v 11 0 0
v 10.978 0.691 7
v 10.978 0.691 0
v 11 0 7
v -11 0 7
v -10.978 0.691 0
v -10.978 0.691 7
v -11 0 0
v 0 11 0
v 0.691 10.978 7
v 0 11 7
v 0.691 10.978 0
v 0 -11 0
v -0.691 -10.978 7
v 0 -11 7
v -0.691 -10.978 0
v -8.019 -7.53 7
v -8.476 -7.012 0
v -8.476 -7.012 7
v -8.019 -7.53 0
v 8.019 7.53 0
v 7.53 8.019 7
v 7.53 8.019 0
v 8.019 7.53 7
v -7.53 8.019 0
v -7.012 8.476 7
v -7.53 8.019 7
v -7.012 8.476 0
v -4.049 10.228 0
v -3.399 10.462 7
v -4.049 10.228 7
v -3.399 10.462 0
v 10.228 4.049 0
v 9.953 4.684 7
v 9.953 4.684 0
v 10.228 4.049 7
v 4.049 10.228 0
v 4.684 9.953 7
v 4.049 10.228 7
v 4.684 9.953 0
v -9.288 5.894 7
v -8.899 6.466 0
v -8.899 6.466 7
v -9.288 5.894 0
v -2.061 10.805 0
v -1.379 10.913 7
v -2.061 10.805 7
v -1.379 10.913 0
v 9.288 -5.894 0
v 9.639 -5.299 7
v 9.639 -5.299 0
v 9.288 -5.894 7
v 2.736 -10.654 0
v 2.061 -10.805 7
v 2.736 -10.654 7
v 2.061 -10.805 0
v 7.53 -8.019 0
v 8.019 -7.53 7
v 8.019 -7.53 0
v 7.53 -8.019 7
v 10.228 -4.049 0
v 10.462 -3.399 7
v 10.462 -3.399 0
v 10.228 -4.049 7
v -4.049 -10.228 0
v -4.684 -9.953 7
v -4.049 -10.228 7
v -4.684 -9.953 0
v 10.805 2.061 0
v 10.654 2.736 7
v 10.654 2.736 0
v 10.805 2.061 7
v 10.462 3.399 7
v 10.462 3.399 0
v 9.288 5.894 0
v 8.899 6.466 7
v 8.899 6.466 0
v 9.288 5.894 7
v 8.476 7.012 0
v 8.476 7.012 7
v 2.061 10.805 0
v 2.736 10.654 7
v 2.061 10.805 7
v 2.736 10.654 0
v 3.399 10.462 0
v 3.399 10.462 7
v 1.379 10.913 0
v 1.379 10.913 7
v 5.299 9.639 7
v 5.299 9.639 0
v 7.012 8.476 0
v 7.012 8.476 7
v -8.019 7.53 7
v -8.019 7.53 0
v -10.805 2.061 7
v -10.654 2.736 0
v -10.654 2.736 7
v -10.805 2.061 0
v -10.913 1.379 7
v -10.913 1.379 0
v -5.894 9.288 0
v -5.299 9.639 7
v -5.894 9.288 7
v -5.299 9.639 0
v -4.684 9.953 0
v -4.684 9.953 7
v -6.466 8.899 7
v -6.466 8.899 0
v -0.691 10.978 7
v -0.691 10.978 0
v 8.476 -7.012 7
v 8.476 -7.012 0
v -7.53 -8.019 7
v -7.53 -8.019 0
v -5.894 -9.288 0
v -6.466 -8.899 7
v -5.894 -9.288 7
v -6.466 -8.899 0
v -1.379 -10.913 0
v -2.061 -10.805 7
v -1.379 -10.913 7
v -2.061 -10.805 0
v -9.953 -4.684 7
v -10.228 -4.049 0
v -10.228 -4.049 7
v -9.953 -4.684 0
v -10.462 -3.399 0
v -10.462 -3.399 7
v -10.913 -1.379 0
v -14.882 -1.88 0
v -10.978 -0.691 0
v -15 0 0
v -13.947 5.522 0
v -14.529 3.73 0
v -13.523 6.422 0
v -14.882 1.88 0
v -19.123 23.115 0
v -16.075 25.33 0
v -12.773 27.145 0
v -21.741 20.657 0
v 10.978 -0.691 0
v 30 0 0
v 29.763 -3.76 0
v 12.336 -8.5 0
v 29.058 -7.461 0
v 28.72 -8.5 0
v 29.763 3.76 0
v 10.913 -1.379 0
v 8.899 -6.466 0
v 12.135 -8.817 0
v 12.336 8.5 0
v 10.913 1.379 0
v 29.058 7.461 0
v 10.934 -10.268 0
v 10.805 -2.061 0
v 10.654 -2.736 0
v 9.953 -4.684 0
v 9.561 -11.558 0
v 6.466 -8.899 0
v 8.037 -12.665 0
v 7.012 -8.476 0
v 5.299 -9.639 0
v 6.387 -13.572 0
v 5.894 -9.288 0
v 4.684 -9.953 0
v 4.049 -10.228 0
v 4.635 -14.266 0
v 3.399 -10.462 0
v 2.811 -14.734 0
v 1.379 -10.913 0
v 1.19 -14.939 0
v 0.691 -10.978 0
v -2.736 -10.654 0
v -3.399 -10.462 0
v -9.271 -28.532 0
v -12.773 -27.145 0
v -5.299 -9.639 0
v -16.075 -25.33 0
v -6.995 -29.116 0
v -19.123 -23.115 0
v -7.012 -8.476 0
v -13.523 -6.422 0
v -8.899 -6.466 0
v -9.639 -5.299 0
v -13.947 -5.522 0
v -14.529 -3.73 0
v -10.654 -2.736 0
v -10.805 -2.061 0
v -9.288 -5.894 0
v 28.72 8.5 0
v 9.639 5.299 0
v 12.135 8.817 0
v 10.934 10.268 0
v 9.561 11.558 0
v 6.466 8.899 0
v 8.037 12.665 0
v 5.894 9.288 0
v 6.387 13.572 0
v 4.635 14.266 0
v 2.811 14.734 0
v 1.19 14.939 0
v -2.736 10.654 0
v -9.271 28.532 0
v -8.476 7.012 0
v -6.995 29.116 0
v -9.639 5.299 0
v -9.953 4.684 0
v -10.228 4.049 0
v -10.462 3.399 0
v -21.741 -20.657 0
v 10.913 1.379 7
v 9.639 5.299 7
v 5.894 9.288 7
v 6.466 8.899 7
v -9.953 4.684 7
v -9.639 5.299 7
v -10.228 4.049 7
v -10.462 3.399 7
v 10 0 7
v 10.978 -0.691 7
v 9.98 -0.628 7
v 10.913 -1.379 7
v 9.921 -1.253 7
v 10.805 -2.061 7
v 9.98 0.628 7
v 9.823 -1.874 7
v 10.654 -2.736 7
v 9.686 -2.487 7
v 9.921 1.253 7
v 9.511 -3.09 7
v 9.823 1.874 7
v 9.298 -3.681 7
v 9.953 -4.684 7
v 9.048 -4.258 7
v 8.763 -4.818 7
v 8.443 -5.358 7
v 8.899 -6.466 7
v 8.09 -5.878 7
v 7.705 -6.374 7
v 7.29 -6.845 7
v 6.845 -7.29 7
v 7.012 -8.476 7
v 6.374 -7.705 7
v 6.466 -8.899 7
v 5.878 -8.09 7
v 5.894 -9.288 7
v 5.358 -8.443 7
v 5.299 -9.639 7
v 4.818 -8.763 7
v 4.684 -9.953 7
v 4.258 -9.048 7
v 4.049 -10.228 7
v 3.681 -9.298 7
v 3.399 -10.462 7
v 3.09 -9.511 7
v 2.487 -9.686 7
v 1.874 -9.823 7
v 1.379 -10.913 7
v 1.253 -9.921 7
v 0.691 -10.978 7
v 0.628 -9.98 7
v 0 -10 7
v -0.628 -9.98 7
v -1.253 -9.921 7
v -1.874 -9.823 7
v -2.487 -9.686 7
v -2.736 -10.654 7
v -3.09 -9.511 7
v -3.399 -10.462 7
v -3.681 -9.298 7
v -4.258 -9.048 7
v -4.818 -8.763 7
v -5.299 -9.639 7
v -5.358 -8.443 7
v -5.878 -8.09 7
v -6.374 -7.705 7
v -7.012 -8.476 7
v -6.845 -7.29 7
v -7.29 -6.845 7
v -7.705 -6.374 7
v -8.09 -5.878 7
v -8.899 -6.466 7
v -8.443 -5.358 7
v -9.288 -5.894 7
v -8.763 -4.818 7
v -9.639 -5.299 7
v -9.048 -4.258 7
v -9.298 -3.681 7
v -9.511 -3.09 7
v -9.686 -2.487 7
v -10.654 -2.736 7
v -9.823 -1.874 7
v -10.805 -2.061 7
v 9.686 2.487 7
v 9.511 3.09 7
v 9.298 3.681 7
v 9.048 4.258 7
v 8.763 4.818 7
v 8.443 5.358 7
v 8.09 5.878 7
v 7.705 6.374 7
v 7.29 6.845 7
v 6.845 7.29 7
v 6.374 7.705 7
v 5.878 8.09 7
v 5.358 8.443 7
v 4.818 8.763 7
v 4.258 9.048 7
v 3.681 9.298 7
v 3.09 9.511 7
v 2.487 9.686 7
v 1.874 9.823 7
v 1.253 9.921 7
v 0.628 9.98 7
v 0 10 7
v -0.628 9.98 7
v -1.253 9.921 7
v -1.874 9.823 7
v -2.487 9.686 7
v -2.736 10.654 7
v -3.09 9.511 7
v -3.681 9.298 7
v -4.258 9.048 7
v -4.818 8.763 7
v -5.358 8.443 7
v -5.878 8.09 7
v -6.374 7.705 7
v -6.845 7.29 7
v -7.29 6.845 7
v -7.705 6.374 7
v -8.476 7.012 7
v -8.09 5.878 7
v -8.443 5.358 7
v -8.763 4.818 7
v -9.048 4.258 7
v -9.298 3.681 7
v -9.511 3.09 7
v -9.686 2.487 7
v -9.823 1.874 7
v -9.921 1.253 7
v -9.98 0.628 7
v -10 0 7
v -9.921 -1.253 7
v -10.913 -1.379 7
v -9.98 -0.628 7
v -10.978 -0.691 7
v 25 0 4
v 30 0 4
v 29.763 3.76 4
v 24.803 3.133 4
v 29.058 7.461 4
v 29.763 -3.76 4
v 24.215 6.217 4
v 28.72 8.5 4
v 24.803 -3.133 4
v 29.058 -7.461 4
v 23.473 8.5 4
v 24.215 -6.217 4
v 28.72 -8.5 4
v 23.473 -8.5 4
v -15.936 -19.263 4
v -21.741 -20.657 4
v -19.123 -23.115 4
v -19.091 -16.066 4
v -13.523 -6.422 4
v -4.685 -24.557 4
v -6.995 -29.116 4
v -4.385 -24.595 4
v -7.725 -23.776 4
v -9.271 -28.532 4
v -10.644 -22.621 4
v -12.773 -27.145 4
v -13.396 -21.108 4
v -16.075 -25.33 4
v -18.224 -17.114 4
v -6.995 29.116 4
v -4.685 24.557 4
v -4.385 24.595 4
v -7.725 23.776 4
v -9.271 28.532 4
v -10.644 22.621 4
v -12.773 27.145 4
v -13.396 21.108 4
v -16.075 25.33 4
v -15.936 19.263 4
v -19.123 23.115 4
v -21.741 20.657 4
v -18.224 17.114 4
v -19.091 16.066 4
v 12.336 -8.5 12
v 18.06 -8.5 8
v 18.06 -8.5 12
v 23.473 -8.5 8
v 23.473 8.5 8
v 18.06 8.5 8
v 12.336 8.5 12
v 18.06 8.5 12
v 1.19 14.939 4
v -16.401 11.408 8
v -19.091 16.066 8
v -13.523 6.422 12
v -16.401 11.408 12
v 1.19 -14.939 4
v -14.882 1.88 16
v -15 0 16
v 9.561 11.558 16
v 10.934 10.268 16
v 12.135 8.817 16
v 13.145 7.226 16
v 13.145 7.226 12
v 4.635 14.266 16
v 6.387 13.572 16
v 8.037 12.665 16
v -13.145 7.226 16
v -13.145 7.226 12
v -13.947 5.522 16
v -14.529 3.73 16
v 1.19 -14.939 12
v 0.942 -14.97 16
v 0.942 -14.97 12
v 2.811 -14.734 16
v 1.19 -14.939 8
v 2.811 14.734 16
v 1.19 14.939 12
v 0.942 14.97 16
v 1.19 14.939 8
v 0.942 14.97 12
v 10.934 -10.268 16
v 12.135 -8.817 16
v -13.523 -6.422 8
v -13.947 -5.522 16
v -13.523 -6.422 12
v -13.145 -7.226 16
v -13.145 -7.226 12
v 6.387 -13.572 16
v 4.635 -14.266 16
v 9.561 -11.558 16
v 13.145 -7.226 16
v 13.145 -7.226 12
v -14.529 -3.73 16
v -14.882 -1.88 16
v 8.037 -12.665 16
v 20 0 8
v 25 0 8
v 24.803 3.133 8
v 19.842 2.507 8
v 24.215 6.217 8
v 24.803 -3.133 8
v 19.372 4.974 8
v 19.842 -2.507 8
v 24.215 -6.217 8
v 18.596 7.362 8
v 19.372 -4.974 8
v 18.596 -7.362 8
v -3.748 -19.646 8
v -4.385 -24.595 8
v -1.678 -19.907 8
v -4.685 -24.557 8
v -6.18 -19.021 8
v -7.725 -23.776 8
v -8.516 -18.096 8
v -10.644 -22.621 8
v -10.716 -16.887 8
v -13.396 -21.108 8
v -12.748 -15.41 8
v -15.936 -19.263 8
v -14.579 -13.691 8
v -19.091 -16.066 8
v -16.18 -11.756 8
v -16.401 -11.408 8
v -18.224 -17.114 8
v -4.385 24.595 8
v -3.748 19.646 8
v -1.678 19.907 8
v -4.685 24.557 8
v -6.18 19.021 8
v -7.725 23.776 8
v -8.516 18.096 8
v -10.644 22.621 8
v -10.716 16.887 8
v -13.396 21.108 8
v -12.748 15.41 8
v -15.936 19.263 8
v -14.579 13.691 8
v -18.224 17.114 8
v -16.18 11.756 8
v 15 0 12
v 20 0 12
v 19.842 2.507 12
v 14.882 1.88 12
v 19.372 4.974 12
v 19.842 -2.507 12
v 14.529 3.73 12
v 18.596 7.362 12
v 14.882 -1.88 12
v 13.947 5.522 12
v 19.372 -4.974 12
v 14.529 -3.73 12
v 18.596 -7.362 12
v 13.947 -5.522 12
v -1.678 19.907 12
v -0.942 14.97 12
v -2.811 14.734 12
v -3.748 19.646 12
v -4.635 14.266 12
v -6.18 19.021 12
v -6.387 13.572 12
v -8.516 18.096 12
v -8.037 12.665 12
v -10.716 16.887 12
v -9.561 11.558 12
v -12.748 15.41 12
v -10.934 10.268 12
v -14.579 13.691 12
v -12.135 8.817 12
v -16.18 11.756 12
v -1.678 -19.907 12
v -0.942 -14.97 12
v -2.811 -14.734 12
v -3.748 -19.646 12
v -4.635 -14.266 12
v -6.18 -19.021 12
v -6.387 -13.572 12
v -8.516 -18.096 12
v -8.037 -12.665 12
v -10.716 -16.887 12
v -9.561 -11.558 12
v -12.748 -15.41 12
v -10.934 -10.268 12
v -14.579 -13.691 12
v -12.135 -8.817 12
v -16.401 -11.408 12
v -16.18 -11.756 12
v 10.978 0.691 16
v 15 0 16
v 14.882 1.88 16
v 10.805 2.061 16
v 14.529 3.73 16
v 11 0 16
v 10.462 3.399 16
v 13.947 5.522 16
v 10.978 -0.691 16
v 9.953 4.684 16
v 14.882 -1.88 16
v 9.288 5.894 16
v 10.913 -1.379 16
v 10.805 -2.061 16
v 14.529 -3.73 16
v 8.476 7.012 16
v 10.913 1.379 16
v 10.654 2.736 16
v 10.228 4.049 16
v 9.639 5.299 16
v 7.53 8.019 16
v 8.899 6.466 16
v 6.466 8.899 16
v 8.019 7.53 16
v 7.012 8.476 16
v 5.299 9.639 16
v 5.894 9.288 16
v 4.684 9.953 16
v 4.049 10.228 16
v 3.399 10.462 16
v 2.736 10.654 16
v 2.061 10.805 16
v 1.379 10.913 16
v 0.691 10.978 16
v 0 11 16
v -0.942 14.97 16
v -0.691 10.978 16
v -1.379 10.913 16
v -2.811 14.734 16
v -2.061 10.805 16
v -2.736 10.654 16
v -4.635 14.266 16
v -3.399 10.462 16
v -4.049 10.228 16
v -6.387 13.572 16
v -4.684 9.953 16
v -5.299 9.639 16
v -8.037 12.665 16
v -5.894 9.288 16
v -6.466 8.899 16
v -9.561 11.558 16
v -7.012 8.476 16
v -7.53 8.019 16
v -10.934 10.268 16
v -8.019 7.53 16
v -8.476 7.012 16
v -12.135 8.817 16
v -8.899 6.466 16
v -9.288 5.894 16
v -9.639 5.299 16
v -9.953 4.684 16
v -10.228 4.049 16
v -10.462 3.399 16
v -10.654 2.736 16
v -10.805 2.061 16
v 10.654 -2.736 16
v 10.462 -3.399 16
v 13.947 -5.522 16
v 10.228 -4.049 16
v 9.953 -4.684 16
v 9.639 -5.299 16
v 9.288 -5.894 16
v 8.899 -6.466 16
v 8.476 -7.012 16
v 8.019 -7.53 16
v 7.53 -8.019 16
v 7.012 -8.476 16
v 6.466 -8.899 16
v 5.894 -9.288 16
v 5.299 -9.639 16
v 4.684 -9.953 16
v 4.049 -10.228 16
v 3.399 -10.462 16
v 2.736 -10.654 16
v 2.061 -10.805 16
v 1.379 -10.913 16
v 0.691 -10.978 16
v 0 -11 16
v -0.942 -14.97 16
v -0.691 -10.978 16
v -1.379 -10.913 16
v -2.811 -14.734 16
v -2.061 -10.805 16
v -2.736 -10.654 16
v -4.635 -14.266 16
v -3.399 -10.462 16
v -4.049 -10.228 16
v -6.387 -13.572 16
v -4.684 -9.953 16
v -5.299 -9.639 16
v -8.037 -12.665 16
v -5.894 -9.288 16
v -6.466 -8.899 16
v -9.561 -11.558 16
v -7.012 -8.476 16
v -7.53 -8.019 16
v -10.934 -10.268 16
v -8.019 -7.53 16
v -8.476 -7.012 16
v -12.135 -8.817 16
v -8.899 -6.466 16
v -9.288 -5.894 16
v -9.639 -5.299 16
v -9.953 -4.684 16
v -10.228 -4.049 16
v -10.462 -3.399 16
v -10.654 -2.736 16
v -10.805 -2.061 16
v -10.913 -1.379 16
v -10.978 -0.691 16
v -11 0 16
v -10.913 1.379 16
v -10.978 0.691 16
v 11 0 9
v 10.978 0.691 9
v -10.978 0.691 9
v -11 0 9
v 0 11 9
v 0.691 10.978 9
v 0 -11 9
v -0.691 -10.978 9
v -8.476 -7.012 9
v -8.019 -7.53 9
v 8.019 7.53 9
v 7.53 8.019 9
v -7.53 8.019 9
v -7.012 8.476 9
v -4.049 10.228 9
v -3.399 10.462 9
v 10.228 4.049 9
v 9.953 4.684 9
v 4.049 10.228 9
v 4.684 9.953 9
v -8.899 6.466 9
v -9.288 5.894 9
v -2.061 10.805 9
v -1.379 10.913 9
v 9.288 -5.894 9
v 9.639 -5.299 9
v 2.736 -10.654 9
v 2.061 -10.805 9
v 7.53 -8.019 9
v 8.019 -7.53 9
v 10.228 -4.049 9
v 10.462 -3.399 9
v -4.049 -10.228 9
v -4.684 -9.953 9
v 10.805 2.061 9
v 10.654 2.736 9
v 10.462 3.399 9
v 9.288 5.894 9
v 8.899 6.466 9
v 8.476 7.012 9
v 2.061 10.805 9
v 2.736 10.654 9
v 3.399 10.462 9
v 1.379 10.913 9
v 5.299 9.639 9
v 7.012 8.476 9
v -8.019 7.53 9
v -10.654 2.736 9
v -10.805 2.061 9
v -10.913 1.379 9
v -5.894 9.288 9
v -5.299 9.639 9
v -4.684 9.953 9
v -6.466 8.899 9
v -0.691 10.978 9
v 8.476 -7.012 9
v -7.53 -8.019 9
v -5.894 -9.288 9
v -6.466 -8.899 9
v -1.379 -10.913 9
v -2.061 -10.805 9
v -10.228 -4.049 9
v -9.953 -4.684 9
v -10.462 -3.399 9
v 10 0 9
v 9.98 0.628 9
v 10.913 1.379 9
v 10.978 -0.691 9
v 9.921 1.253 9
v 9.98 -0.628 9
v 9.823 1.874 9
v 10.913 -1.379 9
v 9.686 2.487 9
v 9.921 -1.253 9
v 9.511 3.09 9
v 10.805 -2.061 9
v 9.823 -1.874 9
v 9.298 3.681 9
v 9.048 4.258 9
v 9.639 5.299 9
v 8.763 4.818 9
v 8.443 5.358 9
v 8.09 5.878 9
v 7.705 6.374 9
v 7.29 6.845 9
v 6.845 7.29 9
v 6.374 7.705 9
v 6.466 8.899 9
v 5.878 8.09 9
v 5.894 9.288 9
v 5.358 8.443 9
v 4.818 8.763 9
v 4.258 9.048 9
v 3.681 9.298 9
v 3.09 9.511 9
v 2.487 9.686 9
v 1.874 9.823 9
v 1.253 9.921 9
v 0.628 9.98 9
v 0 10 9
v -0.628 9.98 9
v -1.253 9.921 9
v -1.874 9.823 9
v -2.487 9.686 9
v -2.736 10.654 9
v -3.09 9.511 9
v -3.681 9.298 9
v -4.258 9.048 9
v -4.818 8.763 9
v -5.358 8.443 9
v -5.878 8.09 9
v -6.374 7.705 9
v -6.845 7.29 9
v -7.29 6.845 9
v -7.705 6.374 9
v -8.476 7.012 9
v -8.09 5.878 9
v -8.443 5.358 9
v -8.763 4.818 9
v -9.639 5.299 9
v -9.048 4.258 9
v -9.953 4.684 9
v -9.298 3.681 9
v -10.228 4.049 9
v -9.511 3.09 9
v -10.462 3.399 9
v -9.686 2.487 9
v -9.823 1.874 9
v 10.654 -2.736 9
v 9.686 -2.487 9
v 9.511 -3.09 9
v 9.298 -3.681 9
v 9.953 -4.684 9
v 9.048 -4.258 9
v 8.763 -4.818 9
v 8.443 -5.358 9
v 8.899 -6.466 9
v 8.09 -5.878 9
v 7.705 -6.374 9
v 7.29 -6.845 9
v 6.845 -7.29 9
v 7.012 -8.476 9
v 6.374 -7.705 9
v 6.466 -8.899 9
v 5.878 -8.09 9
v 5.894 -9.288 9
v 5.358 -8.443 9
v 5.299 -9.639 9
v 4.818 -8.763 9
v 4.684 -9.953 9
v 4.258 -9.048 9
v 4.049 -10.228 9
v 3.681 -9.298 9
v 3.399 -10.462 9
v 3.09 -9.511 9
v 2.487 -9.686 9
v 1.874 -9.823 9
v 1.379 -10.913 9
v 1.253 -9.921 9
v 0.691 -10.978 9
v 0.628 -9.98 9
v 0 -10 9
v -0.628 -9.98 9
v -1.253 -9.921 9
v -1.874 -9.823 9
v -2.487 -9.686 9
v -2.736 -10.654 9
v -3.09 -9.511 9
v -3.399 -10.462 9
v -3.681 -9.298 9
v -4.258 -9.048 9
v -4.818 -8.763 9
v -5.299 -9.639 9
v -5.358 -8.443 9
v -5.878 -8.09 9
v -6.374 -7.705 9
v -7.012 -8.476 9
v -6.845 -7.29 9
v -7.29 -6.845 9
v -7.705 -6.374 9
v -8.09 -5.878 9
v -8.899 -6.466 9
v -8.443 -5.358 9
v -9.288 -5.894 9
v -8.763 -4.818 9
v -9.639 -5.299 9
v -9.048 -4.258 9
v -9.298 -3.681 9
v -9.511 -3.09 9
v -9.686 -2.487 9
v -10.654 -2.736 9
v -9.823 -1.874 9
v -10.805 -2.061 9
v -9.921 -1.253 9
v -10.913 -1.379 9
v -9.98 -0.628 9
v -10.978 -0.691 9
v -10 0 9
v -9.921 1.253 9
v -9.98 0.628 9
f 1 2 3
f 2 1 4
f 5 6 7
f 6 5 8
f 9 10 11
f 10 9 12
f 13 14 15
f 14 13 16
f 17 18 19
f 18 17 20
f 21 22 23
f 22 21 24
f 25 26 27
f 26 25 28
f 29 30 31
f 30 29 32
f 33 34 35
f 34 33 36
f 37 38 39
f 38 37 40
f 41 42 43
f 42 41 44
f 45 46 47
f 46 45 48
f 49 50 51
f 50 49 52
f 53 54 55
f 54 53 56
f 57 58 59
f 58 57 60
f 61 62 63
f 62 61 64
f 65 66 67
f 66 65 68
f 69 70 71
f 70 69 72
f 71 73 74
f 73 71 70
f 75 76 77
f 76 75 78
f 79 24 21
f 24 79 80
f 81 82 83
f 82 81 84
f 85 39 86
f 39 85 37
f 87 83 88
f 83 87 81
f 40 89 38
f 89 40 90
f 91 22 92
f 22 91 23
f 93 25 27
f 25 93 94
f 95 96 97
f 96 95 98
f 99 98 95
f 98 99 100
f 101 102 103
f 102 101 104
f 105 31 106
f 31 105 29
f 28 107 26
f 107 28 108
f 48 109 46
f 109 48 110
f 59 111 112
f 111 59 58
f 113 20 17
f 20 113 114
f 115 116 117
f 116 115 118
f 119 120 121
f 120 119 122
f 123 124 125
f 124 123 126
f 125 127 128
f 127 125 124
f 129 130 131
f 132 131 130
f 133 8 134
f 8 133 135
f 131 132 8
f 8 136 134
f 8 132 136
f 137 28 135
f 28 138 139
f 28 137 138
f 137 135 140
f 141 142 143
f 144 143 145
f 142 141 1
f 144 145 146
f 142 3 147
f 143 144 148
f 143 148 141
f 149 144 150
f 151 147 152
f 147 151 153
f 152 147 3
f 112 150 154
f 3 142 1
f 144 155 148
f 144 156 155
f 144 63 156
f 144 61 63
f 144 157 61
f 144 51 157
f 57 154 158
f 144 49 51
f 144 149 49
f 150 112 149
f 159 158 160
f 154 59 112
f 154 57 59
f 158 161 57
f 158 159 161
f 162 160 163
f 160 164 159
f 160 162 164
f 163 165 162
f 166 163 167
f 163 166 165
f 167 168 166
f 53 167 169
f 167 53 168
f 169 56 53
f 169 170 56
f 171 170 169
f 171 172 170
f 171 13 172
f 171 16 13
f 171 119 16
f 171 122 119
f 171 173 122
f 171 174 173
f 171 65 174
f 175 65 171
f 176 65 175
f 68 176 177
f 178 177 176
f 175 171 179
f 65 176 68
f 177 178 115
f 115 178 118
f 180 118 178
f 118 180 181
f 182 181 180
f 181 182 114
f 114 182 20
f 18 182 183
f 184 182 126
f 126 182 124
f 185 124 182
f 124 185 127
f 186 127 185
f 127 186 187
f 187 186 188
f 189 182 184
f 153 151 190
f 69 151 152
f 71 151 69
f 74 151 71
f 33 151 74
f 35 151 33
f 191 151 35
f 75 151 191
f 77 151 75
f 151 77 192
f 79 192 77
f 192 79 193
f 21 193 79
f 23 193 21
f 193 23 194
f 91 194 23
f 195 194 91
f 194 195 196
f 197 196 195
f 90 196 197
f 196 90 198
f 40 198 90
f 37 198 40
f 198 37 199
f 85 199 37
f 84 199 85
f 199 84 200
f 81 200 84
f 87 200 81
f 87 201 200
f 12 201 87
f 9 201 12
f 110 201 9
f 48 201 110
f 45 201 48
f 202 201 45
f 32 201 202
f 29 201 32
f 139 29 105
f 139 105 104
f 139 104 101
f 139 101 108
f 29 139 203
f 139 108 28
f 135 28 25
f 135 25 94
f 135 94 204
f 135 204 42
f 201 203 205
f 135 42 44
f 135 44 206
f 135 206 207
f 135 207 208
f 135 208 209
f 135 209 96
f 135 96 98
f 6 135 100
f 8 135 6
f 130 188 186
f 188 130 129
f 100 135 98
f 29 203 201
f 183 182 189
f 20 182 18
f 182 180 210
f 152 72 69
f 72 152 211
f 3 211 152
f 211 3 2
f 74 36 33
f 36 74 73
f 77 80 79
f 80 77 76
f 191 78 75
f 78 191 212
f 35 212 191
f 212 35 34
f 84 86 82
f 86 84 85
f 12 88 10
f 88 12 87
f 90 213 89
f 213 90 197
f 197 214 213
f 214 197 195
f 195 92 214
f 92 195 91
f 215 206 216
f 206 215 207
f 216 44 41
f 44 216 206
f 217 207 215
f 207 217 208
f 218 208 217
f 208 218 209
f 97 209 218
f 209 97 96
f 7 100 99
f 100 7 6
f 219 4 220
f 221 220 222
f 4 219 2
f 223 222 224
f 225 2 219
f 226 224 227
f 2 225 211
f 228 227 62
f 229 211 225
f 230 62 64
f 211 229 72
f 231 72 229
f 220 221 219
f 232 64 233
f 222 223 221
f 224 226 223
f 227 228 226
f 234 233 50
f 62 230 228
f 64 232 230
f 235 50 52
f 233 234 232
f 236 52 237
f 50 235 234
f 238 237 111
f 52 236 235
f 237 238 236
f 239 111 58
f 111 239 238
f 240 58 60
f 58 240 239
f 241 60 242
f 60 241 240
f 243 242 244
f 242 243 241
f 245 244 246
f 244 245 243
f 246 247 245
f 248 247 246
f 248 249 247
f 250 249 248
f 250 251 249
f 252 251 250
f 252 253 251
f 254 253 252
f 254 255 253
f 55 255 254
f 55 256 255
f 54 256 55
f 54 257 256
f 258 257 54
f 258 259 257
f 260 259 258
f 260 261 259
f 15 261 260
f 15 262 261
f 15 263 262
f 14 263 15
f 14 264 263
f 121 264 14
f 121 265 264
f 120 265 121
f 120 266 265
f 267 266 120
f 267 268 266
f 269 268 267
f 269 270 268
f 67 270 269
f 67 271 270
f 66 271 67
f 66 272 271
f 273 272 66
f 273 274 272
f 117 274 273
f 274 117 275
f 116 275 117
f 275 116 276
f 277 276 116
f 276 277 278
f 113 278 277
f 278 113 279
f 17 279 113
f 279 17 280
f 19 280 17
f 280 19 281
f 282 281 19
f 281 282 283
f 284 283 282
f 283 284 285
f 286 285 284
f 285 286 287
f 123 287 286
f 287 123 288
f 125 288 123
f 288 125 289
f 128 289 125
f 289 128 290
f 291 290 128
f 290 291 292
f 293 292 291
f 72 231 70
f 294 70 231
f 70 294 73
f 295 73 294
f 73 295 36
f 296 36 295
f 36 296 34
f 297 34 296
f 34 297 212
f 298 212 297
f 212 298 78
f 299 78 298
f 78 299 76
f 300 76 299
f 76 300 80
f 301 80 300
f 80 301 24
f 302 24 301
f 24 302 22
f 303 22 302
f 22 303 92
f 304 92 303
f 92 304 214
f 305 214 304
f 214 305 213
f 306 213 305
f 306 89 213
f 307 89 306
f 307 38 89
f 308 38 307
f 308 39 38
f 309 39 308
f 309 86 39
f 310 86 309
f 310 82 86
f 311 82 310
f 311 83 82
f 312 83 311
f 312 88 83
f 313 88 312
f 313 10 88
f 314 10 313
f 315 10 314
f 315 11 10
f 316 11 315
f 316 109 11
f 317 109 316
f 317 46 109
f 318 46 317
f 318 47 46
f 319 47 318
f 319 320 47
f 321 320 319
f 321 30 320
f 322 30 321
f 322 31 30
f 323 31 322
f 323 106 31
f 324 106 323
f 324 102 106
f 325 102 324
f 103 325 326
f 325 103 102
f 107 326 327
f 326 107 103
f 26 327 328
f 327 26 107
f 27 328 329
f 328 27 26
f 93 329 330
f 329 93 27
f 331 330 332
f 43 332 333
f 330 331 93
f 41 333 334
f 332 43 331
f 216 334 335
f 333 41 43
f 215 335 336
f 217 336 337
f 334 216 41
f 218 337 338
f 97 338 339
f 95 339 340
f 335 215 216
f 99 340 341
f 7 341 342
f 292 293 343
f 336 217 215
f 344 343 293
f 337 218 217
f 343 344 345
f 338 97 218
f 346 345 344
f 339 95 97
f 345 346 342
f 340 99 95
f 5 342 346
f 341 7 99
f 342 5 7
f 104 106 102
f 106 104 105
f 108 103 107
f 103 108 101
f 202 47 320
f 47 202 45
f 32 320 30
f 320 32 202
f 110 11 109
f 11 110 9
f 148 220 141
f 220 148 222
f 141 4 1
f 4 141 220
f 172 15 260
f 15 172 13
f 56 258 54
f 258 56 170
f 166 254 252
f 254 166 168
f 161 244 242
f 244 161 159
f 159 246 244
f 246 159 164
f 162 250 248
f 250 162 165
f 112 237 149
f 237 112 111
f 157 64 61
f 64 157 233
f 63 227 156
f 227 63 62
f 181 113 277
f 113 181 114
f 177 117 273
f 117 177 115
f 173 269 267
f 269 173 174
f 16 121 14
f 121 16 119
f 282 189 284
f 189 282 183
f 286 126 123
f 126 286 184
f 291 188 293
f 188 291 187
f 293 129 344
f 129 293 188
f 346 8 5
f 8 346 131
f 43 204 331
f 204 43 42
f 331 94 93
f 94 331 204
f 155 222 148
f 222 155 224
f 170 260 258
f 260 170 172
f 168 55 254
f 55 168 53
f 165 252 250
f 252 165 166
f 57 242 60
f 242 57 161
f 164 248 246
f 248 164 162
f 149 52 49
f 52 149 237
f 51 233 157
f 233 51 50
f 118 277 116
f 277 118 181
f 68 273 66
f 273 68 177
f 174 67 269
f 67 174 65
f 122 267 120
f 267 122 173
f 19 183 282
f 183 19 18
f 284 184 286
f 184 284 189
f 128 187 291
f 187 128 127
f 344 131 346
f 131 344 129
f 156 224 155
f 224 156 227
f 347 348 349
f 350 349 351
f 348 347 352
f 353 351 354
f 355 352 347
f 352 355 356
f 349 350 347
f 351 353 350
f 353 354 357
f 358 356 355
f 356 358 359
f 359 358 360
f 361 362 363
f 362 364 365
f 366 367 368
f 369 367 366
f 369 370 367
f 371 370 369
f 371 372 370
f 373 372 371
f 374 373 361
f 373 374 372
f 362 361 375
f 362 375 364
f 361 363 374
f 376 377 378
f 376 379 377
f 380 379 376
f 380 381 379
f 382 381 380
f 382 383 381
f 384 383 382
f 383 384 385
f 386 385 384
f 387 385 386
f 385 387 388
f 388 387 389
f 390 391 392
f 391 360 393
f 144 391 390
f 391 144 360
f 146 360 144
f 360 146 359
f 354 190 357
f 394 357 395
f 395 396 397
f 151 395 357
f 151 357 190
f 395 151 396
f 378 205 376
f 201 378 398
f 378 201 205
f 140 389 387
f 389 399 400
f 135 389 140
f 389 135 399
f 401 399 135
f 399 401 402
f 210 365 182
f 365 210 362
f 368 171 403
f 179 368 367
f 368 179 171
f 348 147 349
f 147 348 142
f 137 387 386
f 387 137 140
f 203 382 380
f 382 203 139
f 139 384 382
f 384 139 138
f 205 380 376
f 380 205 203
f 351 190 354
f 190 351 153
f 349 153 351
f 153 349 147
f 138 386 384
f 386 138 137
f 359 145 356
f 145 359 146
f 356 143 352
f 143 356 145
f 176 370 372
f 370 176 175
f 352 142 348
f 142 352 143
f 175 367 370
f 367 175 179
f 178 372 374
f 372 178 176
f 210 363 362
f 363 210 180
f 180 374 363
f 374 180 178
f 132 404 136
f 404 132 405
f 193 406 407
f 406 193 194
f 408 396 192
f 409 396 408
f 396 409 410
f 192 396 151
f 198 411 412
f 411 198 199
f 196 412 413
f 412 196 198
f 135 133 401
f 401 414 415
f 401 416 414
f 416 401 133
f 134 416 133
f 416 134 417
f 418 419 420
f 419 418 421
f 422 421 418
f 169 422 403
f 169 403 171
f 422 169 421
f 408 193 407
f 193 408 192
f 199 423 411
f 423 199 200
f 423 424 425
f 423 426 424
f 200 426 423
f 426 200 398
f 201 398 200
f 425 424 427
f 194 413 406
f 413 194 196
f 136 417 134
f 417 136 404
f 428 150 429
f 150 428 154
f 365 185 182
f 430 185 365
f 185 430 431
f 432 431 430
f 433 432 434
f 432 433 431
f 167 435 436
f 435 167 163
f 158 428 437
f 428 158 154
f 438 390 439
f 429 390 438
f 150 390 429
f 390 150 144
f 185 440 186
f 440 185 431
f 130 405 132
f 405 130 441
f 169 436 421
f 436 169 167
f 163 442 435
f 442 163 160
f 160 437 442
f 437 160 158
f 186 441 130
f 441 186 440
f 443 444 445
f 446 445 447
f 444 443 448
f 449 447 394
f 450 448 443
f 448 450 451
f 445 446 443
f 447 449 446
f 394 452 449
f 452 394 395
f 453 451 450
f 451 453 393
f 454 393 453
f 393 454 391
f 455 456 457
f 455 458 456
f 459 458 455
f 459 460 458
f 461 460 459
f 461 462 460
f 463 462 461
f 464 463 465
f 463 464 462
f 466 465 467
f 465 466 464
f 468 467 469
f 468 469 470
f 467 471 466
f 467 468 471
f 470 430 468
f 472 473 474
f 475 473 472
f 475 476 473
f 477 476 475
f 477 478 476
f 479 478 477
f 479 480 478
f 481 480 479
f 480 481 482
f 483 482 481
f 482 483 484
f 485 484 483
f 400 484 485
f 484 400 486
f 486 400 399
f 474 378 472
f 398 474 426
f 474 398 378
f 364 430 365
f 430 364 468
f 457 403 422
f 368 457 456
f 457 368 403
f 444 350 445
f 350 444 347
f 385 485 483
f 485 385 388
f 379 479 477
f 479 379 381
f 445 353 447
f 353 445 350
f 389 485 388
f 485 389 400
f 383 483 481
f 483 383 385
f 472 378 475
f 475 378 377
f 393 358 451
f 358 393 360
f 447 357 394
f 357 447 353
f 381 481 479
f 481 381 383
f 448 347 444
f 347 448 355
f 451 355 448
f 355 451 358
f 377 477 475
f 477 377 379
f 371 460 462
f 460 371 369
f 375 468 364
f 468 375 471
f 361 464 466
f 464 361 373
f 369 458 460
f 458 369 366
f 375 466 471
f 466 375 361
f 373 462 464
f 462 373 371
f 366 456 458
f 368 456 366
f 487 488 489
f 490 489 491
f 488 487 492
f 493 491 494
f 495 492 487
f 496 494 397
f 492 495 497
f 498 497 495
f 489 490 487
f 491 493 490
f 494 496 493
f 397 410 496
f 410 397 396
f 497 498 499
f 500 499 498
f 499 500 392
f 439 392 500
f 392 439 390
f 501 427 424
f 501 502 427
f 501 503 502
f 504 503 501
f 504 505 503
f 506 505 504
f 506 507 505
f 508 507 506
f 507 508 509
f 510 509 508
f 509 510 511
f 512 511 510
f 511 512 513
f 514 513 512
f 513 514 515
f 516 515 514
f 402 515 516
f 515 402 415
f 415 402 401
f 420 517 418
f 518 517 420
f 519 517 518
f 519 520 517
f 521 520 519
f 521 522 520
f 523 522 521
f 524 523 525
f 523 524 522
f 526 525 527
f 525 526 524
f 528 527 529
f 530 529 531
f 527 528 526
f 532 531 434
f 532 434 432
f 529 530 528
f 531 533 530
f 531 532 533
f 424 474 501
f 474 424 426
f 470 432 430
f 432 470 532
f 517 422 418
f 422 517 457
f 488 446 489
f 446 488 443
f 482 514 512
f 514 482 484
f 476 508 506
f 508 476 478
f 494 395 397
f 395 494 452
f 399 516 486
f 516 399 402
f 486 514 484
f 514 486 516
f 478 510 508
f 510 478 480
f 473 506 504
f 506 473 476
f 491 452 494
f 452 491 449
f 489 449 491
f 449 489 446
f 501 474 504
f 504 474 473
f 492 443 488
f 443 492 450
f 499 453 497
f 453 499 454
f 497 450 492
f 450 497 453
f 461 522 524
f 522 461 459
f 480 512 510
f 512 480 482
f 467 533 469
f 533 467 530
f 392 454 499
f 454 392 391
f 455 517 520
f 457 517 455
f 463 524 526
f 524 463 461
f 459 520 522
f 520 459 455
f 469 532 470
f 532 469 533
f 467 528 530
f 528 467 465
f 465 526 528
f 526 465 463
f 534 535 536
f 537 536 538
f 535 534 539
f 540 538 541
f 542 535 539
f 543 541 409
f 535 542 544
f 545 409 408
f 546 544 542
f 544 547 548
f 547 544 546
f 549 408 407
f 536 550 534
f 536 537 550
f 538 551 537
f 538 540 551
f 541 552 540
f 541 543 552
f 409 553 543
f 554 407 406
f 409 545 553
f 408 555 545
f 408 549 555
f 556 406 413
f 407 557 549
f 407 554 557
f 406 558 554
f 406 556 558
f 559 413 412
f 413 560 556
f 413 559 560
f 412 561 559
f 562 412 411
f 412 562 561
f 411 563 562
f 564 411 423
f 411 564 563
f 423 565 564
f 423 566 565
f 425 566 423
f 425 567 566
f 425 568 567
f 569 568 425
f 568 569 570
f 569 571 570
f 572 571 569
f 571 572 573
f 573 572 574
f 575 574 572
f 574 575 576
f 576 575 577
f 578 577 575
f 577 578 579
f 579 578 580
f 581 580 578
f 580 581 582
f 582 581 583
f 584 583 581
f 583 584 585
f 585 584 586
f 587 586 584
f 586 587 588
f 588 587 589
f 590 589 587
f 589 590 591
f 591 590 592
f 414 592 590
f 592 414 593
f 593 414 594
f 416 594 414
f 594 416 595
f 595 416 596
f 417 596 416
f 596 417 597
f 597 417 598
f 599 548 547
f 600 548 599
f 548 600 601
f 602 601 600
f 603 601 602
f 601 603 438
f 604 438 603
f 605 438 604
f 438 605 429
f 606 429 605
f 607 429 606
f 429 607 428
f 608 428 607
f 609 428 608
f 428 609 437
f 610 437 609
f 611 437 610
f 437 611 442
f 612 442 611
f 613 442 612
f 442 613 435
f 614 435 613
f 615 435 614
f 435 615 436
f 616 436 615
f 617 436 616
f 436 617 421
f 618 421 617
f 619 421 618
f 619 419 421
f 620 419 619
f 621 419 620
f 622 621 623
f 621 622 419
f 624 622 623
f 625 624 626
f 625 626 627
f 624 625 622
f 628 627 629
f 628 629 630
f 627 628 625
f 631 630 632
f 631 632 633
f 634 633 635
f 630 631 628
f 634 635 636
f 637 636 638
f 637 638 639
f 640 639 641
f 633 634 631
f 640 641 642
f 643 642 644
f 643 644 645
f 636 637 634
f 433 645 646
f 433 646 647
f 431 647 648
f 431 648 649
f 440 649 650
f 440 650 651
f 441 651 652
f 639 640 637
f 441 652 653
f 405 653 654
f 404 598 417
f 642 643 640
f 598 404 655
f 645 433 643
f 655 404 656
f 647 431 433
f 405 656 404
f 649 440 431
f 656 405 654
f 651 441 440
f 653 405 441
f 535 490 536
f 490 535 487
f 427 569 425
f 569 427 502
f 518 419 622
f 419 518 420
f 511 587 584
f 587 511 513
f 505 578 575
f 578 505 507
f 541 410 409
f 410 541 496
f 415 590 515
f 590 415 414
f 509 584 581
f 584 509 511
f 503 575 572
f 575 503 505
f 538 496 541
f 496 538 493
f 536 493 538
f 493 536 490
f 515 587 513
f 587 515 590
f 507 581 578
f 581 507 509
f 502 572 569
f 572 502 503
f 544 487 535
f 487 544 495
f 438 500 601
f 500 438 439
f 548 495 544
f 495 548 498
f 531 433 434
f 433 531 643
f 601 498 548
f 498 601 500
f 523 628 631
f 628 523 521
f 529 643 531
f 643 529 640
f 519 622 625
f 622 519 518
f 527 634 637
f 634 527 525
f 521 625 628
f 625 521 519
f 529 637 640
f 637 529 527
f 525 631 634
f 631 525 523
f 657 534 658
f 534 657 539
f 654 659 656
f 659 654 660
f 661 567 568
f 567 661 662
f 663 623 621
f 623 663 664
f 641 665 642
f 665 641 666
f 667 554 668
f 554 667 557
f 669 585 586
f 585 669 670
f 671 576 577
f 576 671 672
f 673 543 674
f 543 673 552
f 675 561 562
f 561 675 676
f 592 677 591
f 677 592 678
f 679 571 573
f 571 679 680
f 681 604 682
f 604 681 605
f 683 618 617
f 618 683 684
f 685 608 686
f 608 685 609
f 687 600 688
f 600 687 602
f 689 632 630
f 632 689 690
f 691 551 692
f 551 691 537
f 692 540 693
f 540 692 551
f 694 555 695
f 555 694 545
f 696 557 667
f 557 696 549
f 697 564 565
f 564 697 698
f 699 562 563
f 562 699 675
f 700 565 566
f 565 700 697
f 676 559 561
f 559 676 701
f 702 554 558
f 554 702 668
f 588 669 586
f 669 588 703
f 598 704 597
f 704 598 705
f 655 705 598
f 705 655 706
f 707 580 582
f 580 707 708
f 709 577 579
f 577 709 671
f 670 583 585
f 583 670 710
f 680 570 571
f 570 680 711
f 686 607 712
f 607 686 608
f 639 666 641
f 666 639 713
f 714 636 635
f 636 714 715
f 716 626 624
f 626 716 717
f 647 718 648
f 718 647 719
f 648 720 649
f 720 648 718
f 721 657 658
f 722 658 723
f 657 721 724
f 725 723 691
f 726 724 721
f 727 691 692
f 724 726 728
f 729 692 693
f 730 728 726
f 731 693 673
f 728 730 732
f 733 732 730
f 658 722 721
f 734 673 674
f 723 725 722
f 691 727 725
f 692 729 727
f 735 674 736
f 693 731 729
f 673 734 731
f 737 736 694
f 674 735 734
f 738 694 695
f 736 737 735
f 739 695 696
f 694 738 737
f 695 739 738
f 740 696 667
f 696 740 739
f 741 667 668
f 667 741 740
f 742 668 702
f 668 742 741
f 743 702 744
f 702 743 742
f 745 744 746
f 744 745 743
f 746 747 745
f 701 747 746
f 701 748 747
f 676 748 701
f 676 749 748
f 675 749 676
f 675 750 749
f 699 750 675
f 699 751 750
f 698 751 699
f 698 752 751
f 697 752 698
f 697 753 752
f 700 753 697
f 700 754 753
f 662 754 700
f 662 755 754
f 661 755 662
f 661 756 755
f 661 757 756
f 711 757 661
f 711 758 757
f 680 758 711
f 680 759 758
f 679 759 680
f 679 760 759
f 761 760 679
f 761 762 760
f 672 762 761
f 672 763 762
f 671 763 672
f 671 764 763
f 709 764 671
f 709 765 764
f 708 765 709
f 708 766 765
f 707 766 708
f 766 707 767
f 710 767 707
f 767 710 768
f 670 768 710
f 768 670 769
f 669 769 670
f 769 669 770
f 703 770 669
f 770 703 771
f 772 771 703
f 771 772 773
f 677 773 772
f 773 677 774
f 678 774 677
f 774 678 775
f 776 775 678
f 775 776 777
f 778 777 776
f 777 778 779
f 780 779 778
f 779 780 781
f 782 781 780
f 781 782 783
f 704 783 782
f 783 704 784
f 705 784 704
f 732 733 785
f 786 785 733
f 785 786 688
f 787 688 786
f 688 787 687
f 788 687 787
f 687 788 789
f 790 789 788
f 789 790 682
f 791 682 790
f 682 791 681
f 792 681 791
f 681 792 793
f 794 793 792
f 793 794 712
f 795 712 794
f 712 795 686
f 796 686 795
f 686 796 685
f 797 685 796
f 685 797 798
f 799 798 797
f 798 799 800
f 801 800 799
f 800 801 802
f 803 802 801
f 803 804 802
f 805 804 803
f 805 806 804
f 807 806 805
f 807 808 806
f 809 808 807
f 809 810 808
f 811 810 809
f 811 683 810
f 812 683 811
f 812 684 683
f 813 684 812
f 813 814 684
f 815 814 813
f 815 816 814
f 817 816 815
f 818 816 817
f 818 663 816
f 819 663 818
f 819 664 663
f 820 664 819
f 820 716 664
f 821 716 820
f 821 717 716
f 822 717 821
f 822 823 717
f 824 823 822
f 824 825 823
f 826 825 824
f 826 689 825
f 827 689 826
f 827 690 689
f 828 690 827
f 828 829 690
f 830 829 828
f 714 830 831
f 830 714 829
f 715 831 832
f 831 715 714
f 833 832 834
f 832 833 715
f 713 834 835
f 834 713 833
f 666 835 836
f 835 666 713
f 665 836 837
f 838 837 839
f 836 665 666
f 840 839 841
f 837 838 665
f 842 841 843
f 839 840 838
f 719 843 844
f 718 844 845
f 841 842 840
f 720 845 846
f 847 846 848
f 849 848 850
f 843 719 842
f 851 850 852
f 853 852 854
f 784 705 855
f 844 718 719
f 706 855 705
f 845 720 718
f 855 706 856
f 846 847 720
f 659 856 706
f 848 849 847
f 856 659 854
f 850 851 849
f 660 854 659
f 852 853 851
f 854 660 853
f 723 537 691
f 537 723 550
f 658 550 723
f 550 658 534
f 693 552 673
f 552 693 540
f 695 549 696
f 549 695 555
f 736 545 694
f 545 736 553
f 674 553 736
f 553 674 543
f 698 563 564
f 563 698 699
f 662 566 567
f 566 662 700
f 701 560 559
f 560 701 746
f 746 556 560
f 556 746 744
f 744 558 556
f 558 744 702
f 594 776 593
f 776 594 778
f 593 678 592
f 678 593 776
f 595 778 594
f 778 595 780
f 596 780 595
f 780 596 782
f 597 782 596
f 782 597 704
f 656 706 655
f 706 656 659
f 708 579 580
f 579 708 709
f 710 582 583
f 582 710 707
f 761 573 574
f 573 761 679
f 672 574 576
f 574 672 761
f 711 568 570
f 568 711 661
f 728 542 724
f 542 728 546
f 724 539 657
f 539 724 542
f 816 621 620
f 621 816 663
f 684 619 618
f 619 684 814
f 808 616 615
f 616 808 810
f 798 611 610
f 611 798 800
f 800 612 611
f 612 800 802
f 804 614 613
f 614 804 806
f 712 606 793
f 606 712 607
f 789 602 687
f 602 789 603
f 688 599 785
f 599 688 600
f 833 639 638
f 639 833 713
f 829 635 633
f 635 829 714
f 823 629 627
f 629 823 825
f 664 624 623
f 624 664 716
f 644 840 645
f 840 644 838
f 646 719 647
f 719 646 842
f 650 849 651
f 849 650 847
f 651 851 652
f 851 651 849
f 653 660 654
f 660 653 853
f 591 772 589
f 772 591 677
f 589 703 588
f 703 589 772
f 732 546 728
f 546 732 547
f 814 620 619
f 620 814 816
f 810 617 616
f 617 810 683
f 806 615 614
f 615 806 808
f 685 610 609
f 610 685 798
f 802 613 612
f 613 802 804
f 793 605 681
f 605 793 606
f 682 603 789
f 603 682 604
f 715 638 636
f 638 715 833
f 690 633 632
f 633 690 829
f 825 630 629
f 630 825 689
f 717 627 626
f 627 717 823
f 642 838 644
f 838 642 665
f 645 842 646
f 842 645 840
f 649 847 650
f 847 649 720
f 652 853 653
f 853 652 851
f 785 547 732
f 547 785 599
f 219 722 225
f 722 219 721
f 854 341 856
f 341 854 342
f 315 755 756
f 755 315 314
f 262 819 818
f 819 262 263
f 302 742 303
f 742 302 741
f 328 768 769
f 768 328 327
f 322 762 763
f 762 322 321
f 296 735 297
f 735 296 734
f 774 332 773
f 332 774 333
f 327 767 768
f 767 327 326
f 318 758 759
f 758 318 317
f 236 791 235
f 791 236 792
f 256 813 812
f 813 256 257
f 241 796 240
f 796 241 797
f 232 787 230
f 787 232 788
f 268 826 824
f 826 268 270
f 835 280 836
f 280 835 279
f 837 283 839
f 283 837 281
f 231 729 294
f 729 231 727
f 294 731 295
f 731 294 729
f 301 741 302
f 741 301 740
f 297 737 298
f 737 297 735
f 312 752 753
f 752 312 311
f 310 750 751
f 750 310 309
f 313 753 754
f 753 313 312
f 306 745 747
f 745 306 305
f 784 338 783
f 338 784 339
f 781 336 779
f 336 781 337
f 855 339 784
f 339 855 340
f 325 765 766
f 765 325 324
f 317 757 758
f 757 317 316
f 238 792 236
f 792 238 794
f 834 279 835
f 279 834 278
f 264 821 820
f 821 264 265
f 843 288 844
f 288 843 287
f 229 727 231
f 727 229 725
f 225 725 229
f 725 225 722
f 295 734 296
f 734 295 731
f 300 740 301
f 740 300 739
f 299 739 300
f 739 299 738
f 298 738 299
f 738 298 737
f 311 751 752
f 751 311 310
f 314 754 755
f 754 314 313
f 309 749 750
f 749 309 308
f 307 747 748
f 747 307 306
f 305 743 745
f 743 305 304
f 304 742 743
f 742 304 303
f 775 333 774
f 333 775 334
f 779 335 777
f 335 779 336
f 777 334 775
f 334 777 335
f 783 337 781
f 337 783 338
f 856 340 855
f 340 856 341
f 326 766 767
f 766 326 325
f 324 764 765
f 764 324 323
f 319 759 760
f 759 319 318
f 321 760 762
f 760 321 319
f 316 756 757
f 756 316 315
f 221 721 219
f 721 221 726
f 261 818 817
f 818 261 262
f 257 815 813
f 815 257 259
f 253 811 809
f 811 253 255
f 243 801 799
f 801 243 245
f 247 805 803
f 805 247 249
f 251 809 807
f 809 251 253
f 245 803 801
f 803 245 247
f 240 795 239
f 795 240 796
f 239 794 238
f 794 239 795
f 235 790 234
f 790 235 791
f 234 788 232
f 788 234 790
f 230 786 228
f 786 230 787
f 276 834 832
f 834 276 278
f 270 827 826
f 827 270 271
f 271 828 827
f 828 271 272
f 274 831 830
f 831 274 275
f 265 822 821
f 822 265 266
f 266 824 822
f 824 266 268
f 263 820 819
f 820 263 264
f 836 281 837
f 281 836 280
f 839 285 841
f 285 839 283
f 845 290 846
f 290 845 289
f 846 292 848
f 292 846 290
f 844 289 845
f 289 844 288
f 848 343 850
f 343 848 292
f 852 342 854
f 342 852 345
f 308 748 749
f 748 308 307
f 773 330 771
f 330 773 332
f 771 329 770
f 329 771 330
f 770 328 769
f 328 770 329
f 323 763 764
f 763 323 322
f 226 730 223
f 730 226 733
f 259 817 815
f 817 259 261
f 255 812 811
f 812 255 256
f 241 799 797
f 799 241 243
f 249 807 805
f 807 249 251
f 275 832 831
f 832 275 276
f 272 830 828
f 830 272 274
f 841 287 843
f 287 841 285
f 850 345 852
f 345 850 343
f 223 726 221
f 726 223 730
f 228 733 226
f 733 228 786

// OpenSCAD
detail = 100;
diametre_roulement = 22;
hauteur_couche = 4;
hauteur_roulement = 7;
couches = [[30,0],[25,1],[20,2],[15,3]];


module 608zz(){
    translate([0,0,hauteur_roulement/2])
    difference(){
        cylinder(h=hauteur_roulement, d=diametre_roulement, $fn=detail, center=true);
        cylinder(h=8, d=8, $fn=detail/2, center=true);
    }
}

module cross(longueur, largeur, hauteur){
    nb_branche = 3;
    angle = 360/nb_branche;
    difference(){
        for (i=[0:nb_branche-1]){
			rotate([0,0,angle*i])
            translate([0,-largeur/2,0])
            cube([longueur, largeur, hauteur]);
		}
        difference(){
            cylinder(h=hauteur+1, r=1.5*longueur, $fn=detail);
            cylinder(h=hauteur, r=longueur, $fn=detail/2);
        }
    }
        
    cylinder(h=hauteur, r=couches[3][0], $fn=detail/2);
}

module rounded_cross(longueur, largeur, hauteur){
    minkowski(){
        cross(longueur, largeur, hauteur/2);
        cylinder(r=3, h=hauteur/2, $fn=detail/2);
    }
}

module pyramid(){
    for(i = couches){
        echo(i[0]);
        translate([0,0, i[1]*4]) cross(i[0],17,4);
    }

}

module support(){
    difference(){
        pyramid();
        cylinder(h=4*hauteur_couche, d=diametre_roulement-2, $fn=detail);
        608zz();
        translate([0,0,4*hauteur_couche-hauteur_roulement]) 608zz(); 
    }
}

support();
